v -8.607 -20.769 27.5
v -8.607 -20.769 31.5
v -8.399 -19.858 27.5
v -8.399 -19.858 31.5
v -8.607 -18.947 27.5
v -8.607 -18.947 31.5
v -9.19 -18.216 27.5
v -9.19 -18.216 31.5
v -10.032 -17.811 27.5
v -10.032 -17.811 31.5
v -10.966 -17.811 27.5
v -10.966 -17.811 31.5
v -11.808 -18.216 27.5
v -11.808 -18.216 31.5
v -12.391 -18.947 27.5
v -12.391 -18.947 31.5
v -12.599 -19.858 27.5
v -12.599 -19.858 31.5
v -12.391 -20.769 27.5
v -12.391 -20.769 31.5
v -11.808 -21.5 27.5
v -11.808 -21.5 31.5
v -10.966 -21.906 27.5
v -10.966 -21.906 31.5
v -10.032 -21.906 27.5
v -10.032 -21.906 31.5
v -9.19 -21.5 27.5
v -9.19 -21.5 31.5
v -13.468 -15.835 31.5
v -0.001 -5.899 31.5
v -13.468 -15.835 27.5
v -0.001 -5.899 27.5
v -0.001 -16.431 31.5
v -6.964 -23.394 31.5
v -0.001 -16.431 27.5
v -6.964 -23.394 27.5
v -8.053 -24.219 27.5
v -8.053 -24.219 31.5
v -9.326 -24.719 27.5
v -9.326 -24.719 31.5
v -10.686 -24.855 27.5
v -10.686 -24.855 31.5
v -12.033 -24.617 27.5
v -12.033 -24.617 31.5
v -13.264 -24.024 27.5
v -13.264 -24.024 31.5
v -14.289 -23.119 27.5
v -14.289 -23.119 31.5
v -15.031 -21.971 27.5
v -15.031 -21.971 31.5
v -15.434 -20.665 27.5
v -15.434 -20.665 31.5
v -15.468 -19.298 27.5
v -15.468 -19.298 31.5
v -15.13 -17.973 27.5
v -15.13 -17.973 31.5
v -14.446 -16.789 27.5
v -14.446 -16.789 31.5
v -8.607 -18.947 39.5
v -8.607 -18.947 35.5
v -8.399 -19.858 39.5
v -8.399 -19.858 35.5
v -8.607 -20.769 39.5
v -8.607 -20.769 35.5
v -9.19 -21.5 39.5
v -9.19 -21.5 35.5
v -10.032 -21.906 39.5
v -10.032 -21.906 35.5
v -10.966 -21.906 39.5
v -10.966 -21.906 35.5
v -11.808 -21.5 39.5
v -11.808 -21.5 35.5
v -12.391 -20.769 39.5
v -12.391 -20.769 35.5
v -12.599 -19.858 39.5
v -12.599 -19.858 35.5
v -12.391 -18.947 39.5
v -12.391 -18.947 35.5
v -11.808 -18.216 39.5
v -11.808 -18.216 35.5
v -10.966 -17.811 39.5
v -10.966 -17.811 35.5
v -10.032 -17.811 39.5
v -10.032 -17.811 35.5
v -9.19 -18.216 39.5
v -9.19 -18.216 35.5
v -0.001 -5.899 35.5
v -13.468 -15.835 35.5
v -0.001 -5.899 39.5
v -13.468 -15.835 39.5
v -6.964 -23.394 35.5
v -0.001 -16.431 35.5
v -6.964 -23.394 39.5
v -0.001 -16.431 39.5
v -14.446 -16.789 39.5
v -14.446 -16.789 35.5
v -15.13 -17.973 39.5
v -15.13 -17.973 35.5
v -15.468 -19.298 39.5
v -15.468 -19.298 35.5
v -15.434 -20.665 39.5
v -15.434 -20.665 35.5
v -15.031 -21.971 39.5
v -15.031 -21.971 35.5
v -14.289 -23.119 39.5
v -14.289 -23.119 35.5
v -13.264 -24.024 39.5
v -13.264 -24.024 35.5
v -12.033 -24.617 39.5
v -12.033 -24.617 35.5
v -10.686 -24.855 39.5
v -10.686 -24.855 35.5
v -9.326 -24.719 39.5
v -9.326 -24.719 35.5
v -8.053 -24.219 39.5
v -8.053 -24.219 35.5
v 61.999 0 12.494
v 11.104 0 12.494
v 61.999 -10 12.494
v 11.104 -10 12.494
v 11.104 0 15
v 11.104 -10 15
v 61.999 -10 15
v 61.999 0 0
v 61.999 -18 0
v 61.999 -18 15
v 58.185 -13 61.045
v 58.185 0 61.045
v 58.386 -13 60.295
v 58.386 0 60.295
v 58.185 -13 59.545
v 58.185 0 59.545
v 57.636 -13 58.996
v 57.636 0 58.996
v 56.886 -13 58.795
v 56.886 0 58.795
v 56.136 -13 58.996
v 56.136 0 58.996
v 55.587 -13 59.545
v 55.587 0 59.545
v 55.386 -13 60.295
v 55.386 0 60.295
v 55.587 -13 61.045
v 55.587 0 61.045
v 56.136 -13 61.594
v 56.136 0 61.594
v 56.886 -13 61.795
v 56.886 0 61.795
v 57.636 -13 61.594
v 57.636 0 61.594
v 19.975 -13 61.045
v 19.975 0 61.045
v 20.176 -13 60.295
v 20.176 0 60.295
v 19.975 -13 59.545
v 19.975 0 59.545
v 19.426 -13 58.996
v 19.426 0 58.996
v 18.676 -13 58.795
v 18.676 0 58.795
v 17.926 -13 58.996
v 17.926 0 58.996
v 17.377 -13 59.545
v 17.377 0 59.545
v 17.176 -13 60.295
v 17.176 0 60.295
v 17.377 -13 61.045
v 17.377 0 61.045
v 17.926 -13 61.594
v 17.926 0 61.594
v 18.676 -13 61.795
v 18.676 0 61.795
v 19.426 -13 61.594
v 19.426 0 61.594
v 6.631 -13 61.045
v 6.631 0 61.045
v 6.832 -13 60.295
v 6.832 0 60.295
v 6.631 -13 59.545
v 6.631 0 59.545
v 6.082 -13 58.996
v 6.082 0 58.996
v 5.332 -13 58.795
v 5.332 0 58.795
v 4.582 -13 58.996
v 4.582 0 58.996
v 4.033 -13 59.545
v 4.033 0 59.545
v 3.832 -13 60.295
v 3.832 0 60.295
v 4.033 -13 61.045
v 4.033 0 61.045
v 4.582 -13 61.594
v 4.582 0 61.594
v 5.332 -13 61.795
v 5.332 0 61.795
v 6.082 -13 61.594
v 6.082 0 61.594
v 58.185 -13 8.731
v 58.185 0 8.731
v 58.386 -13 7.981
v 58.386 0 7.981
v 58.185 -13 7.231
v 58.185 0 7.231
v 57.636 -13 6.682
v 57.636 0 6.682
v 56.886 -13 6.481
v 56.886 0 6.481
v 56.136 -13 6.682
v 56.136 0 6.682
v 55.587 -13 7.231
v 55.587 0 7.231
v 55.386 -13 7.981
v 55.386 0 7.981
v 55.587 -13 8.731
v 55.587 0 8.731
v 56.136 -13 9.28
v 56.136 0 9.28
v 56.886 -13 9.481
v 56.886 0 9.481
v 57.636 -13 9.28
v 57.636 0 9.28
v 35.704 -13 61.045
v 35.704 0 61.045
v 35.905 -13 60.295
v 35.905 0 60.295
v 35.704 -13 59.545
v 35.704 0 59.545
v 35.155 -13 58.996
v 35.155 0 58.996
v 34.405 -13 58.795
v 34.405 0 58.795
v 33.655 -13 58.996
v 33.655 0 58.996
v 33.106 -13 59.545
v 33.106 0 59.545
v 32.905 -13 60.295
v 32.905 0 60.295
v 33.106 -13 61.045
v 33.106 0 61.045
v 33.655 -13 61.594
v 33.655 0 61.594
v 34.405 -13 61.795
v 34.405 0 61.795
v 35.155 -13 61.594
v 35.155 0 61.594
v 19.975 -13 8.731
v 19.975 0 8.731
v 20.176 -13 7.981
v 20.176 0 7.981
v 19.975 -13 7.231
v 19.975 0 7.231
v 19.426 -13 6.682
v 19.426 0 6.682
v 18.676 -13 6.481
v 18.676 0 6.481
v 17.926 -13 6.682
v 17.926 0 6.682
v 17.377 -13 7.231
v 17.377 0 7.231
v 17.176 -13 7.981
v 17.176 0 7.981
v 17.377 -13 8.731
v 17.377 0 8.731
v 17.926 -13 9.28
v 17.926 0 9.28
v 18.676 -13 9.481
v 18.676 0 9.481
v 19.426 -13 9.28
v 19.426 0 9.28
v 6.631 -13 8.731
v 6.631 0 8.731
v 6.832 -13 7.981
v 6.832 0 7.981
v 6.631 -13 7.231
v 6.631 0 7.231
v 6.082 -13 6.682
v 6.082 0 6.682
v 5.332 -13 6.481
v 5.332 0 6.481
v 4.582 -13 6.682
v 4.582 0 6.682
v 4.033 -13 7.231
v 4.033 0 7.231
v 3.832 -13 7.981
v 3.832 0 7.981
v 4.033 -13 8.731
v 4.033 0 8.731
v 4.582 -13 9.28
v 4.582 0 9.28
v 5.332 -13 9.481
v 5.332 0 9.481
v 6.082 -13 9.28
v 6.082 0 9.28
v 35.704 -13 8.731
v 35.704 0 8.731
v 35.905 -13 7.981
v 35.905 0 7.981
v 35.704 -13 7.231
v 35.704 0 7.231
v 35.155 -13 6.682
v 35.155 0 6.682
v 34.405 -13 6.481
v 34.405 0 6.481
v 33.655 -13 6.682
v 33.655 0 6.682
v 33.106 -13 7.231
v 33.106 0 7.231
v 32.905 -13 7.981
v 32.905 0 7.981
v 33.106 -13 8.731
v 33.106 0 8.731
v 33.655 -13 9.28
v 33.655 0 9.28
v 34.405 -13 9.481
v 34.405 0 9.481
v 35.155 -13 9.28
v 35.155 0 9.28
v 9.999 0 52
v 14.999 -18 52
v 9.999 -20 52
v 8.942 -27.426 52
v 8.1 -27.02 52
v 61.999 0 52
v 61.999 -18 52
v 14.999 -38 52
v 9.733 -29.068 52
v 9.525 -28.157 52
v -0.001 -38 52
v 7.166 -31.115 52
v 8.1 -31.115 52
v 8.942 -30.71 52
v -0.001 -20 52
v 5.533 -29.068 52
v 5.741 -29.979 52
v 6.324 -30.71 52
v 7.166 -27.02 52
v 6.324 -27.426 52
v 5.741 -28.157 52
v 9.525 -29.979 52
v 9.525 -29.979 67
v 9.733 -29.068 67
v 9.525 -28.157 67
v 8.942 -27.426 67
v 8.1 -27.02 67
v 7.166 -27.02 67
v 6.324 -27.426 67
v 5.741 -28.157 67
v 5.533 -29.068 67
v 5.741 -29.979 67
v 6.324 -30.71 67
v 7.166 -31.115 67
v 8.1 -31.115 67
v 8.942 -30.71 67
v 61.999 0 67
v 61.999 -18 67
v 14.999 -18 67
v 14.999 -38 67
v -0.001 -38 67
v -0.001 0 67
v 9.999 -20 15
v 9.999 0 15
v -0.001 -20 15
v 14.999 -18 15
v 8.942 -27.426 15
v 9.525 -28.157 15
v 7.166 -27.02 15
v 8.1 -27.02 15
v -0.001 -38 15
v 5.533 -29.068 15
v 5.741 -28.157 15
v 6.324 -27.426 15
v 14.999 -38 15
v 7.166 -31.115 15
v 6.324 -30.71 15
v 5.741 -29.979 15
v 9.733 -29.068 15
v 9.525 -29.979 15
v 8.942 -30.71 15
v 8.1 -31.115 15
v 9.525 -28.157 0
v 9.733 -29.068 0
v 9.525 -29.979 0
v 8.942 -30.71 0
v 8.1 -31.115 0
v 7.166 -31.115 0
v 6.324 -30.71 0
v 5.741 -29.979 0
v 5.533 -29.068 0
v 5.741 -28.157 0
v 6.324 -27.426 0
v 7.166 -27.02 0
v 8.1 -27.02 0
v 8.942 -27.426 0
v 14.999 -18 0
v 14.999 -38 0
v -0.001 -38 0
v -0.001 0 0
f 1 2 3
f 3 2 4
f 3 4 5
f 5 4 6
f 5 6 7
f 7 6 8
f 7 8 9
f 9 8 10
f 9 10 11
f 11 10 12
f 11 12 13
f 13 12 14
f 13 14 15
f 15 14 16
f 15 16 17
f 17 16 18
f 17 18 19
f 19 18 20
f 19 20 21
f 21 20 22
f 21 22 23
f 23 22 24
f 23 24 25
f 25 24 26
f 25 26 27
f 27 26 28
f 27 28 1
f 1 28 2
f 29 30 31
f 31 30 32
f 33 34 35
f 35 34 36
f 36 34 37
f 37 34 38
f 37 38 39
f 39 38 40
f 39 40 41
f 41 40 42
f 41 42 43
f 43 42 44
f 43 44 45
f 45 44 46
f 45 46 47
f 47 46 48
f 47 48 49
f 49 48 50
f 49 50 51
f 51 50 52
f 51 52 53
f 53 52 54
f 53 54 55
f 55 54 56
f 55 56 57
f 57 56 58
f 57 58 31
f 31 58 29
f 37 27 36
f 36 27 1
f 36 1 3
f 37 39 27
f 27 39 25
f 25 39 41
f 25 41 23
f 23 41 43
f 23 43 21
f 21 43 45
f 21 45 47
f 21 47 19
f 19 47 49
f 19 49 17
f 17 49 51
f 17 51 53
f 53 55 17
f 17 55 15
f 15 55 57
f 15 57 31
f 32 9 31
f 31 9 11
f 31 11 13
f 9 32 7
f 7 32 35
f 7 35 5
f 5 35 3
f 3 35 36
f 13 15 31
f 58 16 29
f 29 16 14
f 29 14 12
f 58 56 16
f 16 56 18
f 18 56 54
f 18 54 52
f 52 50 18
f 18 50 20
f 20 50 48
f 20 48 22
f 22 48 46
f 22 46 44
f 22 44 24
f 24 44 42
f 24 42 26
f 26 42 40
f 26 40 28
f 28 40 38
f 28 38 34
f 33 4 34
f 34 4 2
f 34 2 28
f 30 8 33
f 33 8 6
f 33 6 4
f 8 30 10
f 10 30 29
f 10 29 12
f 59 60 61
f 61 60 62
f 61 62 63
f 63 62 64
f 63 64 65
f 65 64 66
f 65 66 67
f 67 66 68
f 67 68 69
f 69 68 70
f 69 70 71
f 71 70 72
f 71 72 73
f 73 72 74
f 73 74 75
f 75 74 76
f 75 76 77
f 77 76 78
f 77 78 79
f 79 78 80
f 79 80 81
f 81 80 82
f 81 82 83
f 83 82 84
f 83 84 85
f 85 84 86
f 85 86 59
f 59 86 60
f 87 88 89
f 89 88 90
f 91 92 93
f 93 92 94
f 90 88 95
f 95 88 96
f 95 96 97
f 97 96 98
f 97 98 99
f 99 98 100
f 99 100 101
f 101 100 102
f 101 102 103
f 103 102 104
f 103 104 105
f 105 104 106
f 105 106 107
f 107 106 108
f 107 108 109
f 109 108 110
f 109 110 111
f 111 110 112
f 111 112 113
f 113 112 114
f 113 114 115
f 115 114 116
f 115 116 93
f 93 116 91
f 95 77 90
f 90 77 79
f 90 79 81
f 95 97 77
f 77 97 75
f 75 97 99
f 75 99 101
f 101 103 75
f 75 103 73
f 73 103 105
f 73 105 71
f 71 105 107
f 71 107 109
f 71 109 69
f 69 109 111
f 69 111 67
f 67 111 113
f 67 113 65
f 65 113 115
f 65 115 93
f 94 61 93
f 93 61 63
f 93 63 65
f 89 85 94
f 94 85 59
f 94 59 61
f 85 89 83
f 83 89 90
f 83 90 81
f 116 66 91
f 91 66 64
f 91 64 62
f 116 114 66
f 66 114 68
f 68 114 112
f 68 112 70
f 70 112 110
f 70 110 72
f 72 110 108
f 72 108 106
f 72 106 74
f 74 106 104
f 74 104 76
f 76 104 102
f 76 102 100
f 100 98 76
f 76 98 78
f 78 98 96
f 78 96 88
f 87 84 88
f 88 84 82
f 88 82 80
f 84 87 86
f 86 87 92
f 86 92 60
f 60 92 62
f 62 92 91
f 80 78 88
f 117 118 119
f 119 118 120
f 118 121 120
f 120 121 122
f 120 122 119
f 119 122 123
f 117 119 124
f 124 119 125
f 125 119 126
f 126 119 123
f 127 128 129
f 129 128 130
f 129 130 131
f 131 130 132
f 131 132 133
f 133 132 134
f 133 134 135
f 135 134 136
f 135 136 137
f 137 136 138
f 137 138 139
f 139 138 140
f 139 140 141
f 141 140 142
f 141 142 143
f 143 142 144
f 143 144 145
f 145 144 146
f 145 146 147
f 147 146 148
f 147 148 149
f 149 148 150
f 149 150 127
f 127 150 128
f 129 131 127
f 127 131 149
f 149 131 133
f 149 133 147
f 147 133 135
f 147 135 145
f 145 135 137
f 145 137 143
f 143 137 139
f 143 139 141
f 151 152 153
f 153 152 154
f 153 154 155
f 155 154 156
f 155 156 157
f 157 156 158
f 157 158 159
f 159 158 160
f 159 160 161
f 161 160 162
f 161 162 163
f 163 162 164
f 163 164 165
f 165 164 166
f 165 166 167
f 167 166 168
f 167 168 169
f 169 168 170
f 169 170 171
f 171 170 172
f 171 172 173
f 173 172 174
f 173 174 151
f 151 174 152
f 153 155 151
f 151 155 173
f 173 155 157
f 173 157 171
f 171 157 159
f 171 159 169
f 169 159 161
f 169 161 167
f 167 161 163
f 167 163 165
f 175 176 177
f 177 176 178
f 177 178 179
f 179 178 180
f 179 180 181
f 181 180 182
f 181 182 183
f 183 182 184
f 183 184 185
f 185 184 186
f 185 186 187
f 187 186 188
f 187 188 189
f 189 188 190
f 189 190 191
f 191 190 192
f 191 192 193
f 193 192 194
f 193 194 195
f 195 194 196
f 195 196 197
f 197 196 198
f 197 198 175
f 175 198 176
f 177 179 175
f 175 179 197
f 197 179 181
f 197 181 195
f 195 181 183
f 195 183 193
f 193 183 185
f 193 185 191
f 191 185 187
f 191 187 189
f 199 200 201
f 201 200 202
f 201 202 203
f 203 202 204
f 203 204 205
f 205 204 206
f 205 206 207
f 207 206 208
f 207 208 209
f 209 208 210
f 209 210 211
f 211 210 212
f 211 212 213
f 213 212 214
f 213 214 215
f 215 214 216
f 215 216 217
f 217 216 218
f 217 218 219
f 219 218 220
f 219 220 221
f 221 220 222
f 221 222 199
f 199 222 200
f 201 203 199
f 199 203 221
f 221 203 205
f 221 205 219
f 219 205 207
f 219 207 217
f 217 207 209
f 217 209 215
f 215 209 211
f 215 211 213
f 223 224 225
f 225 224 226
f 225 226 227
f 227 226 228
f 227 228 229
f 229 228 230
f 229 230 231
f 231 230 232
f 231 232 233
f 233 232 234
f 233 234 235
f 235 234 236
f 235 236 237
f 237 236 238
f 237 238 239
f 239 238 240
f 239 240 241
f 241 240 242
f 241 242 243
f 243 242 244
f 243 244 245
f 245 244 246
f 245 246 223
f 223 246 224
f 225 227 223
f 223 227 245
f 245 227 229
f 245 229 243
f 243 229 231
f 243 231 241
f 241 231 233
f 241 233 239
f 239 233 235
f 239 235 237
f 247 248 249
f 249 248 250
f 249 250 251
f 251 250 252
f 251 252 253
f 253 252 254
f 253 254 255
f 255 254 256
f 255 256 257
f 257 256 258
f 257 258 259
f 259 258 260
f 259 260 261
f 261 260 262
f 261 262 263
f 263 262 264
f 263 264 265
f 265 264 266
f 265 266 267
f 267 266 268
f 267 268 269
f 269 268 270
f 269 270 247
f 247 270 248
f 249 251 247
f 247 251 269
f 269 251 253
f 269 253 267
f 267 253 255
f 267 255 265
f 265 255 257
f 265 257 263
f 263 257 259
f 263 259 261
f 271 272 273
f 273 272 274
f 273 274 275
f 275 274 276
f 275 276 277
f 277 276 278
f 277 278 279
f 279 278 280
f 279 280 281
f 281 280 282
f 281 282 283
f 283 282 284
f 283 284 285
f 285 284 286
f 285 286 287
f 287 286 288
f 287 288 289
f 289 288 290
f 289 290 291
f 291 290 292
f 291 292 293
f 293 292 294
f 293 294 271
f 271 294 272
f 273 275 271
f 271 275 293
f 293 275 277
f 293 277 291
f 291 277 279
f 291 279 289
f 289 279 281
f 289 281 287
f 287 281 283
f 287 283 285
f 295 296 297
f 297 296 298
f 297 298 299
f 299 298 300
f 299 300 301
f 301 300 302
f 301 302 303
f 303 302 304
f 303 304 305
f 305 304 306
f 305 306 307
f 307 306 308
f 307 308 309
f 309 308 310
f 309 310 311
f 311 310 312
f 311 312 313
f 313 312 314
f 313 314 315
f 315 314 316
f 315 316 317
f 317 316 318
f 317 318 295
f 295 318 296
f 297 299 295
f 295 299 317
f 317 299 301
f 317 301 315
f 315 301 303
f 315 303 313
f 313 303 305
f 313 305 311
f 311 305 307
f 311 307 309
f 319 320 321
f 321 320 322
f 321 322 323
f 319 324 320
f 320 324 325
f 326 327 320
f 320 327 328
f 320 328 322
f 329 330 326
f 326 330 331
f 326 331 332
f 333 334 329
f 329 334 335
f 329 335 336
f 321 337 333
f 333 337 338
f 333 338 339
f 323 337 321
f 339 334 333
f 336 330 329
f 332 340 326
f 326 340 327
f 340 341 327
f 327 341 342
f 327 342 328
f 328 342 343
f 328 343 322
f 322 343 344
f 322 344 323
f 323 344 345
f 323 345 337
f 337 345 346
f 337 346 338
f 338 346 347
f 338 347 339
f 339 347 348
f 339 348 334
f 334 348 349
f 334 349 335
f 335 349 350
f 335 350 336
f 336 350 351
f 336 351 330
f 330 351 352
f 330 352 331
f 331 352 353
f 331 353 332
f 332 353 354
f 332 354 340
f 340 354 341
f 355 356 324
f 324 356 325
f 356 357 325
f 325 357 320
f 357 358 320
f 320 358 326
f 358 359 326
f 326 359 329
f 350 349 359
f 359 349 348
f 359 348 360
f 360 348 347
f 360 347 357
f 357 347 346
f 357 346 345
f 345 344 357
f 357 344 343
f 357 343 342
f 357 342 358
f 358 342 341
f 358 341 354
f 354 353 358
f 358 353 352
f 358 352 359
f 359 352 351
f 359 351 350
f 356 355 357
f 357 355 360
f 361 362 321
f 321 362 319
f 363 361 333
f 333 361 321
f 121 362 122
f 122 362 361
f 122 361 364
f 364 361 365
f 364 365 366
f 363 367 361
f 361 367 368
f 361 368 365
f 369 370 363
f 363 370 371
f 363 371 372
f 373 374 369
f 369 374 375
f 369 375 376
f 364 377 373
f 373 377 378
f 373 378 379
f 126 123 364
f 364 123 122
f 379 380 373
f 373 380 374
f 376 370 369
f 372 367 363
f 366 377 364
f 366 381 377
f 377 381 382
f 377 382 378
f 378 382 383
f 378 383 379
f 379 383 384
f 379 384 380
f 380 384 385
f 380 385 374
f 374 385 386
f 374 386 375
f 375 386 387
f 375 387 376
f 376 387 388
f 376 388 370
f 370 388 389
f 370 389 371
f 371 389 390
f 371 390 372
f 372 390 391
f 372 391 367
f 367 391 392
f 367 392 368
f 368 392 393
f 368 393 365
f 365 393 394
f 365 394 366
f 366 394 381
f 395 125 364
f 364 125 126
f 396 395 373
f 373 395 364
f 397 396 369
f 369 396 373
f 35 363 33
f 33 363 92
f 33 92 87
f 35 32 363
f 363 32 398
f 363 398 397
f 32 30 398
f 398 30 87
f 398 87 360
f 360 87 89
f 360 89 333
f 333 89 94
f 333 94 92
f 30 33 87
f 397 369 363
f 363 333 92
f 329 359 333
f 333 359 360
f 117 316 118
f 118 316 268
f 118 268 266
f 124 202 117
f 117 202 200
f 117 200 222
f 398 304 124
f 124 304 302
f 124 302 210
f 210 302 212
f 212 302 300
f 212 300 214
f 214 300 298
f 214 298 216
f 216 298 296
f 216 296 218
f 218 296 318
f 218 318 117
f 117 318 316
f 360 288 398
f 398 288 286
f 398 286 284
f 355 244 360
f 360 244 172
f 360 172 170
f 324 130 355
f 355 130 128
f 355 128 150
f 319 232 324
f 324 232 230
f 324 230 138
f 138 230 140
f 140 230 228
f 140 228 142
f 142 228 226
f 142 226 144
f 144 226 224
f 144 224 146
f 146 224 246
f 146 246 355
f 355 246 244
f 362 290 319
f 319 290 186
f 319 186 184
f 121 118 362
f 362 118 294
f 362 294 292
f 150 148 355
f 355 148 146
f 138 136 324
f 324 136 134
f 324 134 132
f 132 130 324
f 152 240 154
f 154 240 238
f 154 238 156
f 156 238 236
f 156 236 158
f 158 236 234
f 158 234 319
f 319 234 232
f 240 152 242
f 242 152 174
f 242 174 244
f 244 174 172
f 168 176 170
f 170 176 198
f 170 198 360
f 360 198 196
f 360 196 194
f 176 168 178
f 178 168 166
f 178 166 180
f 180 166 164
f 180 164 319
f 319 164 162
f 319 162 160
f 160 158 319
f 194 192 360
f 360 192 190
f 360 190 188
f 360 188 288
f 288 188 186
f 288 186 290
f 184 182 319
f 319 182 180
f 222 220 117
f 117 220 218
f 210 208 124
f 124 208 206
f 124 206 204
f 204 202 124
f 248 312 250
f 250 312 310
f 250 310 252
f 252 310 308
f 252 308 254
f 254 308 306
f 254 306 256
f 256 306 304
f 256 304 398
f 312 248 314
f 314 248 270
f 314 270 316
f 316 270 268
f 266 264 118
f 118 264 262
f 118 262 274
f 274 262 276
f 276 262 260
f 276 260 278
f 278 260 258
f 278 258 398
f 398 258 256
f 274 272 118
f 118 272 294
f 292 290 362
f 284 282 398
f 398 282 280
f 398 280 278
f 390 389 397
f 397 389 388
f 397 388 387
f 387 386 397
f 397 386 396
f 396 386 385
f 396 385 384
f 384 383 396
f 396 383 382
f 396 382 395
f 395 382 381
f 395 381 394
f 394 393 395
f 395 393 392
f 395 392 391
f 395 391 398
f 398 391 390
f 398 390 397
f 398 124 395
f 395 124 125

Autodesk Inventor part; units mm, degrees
ref_plane "YZ Plane" through (0, 0, 0) normal (1, 0, 0) x (0, 1, 0)
ref_plane "XZ Plane" through (0, 0, 0) normal (0, 1, 0) x (-1, 0, 0)
ref_plane "XY Plane" through (0, 0, 0) normal (0, 0, 1) x (1, 0, 0)
sketch "Эскиз1" plane through (0, 0, 0) normal (0, 0, 1) x (1, 0, 0)
  line L0 (62, -18) -> (62, 0)
  line L1 (62, 0) -> (0, 0)
  line L2 (62, 0) -> (0, 0)
  line L3 (62, -18) -> (15, -18)
  line L4 (0, 0) -> (0, -38)
  line L5 (0, -38) -> (15, -38)
  line L6 (15, -38) -> (15, -18)
  dimension "d27" = 18
  dimension "d32" = 62
  dimension "d40" = 20
  dimension "d41" = 15
  dimension "d42" = 38
extrude "Выдавливание1" add sketch "Эскиз1" along normal blind 15
sketch "Эскиз2" plane through (0, 0, 0) normal (0, 0, -1) x (-1, 0, 0)
  circle A0 centre (-7.6337, -29.0677) radius 2.1
  point P0 (0, 0)
  dimension "d37" = 4.2
extrude "Выдавливание2" cut sketch "Эскиз2" against normal through all
sketch "Эскиз3" plane through (0, 0, 15) normal (0, 0, 1) x (1, 0, 0)
  line L0 (62, 0) -> (0, 0) projected
  line L1 (0, 0) -> (10, 0)
  line L2 (10, 0) -> (10, -20)
  line L3 (10, -20) -> (0, -20)
  line L4 (0, -20) -> (0, 0)
  point P0 (10, 0)
  dimension "d7" = 20
  dimension "d8" = 10
extrude "Выдавливание3" add sketch "Эскиз3" along normal blind 18.5
mirror "Зеркальное отражение1" about plane through (5, -10, 33.5) normal (0, 0, 1)
sketch "Эскиз6" plane through (0, 0, 0) normal (0, 1, 0) x (1, 0, 0)
  circle A0 centre (5.333, -60.2954) radius 1.5
  circle A1 centre (18.6772, -7.9811) radius 1.5
  circle A2 centre (18.6772, -60.2954) radius 1.5
  circle A3 centre (5.333, -7.9811) radius 1.5
  circle A4 centre (34.4058, -60.2954) radius 1.5
  circle A5 centre (34.4058, -7.9811) radius 1.5
  circle A6 centre (56.8865, -7.9811) radius 1.5
  circle A7 centre (56.8865, -60.2954) radius 1.5
  point P0 (0, 0)
  dimension "d21" = 3
  dimension "d22" = 3
  dimension "d23" = 3
  dimension "d24" = 3
  dimension "d33" = 3
  dimension "d34" = 3
  dimension "d35" = 3
  dimension "d36" = 3
extrude "Выдавливание6" cut sketch "Эскиз6" against normal blind 13
sketch "Эскиз7" plane through (0, 0, 0) normal (0, 1, 0) x (1, 0, 0)
  line L0 (62, 0) -> (62, -15) projected
  line L1 (62, -15) -> (62, -12.4939)
  line L2 (11.1046, -12.4939) -> (11.1046, -15)
  line L3 (62, -15) -> (10, -15) projected
  line L4 (62, -15) -> (11.1046, -15)
  line L5 (11.1046, -12.4939) -> (62, -12.4939)
  point P0 (0, 0)
extrude "Выдавливание7" cut sketch "Эскиз7" against normal blind 10
sketch "Эскиз8" plane through (0, -38, 0) normal (-1, 0, 0) x (0, 0, 1)
  point P0 (0, 38)
ref_plane "РабПлоскость3" through (0, 0, 35.5) normal (0, 0, 1) x (1, 0, 0)
ref_plane "РабПлоскость2" through (0, 0, 33.5) normal (0, 0, 1) x (1, 0, 0)
sketch "Эскиз9" plane through (0, 0, 35.5) normal (0, 0, 1) x (1, 0, 0)
  line L0 (0, 0) -> (0, -38) projected
  circle A0 centre (-10.4982, -19.8582) radius 5
  line L1 (0, -20) -> (0, -38) projected
  line L2 (0, -14.2319) -> (0, -12.6158)
  circle A1 centre (-10.4982, -19.8582) radius 2.1
  line L3 (0, -12.6158) -> (0, -14.2319)
  line L4 (-13.4667, -15.8348) -> (1.5377, -4.7644)
  line L5 (-6.9627, -23.3937) -> (0, -16.431)
  line L6 (0, -5.899) -> (0, -16.431)
  point P0 (-15.4732, -20.3581)
  point P1 (-12.5479, -24.4188)
  point P2 (0, -3.6635)
  dimension "d46" = 4.2
  dimension "d47" = 10
  dimension "d52" = 45
extrude "Выдавливание8" add sketch "Эскиз9" along normal blind 4
mirror "Зеркальное отражение2" about plane through (0, 0, 33.5) normal (0, 0, 1) of "Выдавливание8"
properties part number "кроншейн"
